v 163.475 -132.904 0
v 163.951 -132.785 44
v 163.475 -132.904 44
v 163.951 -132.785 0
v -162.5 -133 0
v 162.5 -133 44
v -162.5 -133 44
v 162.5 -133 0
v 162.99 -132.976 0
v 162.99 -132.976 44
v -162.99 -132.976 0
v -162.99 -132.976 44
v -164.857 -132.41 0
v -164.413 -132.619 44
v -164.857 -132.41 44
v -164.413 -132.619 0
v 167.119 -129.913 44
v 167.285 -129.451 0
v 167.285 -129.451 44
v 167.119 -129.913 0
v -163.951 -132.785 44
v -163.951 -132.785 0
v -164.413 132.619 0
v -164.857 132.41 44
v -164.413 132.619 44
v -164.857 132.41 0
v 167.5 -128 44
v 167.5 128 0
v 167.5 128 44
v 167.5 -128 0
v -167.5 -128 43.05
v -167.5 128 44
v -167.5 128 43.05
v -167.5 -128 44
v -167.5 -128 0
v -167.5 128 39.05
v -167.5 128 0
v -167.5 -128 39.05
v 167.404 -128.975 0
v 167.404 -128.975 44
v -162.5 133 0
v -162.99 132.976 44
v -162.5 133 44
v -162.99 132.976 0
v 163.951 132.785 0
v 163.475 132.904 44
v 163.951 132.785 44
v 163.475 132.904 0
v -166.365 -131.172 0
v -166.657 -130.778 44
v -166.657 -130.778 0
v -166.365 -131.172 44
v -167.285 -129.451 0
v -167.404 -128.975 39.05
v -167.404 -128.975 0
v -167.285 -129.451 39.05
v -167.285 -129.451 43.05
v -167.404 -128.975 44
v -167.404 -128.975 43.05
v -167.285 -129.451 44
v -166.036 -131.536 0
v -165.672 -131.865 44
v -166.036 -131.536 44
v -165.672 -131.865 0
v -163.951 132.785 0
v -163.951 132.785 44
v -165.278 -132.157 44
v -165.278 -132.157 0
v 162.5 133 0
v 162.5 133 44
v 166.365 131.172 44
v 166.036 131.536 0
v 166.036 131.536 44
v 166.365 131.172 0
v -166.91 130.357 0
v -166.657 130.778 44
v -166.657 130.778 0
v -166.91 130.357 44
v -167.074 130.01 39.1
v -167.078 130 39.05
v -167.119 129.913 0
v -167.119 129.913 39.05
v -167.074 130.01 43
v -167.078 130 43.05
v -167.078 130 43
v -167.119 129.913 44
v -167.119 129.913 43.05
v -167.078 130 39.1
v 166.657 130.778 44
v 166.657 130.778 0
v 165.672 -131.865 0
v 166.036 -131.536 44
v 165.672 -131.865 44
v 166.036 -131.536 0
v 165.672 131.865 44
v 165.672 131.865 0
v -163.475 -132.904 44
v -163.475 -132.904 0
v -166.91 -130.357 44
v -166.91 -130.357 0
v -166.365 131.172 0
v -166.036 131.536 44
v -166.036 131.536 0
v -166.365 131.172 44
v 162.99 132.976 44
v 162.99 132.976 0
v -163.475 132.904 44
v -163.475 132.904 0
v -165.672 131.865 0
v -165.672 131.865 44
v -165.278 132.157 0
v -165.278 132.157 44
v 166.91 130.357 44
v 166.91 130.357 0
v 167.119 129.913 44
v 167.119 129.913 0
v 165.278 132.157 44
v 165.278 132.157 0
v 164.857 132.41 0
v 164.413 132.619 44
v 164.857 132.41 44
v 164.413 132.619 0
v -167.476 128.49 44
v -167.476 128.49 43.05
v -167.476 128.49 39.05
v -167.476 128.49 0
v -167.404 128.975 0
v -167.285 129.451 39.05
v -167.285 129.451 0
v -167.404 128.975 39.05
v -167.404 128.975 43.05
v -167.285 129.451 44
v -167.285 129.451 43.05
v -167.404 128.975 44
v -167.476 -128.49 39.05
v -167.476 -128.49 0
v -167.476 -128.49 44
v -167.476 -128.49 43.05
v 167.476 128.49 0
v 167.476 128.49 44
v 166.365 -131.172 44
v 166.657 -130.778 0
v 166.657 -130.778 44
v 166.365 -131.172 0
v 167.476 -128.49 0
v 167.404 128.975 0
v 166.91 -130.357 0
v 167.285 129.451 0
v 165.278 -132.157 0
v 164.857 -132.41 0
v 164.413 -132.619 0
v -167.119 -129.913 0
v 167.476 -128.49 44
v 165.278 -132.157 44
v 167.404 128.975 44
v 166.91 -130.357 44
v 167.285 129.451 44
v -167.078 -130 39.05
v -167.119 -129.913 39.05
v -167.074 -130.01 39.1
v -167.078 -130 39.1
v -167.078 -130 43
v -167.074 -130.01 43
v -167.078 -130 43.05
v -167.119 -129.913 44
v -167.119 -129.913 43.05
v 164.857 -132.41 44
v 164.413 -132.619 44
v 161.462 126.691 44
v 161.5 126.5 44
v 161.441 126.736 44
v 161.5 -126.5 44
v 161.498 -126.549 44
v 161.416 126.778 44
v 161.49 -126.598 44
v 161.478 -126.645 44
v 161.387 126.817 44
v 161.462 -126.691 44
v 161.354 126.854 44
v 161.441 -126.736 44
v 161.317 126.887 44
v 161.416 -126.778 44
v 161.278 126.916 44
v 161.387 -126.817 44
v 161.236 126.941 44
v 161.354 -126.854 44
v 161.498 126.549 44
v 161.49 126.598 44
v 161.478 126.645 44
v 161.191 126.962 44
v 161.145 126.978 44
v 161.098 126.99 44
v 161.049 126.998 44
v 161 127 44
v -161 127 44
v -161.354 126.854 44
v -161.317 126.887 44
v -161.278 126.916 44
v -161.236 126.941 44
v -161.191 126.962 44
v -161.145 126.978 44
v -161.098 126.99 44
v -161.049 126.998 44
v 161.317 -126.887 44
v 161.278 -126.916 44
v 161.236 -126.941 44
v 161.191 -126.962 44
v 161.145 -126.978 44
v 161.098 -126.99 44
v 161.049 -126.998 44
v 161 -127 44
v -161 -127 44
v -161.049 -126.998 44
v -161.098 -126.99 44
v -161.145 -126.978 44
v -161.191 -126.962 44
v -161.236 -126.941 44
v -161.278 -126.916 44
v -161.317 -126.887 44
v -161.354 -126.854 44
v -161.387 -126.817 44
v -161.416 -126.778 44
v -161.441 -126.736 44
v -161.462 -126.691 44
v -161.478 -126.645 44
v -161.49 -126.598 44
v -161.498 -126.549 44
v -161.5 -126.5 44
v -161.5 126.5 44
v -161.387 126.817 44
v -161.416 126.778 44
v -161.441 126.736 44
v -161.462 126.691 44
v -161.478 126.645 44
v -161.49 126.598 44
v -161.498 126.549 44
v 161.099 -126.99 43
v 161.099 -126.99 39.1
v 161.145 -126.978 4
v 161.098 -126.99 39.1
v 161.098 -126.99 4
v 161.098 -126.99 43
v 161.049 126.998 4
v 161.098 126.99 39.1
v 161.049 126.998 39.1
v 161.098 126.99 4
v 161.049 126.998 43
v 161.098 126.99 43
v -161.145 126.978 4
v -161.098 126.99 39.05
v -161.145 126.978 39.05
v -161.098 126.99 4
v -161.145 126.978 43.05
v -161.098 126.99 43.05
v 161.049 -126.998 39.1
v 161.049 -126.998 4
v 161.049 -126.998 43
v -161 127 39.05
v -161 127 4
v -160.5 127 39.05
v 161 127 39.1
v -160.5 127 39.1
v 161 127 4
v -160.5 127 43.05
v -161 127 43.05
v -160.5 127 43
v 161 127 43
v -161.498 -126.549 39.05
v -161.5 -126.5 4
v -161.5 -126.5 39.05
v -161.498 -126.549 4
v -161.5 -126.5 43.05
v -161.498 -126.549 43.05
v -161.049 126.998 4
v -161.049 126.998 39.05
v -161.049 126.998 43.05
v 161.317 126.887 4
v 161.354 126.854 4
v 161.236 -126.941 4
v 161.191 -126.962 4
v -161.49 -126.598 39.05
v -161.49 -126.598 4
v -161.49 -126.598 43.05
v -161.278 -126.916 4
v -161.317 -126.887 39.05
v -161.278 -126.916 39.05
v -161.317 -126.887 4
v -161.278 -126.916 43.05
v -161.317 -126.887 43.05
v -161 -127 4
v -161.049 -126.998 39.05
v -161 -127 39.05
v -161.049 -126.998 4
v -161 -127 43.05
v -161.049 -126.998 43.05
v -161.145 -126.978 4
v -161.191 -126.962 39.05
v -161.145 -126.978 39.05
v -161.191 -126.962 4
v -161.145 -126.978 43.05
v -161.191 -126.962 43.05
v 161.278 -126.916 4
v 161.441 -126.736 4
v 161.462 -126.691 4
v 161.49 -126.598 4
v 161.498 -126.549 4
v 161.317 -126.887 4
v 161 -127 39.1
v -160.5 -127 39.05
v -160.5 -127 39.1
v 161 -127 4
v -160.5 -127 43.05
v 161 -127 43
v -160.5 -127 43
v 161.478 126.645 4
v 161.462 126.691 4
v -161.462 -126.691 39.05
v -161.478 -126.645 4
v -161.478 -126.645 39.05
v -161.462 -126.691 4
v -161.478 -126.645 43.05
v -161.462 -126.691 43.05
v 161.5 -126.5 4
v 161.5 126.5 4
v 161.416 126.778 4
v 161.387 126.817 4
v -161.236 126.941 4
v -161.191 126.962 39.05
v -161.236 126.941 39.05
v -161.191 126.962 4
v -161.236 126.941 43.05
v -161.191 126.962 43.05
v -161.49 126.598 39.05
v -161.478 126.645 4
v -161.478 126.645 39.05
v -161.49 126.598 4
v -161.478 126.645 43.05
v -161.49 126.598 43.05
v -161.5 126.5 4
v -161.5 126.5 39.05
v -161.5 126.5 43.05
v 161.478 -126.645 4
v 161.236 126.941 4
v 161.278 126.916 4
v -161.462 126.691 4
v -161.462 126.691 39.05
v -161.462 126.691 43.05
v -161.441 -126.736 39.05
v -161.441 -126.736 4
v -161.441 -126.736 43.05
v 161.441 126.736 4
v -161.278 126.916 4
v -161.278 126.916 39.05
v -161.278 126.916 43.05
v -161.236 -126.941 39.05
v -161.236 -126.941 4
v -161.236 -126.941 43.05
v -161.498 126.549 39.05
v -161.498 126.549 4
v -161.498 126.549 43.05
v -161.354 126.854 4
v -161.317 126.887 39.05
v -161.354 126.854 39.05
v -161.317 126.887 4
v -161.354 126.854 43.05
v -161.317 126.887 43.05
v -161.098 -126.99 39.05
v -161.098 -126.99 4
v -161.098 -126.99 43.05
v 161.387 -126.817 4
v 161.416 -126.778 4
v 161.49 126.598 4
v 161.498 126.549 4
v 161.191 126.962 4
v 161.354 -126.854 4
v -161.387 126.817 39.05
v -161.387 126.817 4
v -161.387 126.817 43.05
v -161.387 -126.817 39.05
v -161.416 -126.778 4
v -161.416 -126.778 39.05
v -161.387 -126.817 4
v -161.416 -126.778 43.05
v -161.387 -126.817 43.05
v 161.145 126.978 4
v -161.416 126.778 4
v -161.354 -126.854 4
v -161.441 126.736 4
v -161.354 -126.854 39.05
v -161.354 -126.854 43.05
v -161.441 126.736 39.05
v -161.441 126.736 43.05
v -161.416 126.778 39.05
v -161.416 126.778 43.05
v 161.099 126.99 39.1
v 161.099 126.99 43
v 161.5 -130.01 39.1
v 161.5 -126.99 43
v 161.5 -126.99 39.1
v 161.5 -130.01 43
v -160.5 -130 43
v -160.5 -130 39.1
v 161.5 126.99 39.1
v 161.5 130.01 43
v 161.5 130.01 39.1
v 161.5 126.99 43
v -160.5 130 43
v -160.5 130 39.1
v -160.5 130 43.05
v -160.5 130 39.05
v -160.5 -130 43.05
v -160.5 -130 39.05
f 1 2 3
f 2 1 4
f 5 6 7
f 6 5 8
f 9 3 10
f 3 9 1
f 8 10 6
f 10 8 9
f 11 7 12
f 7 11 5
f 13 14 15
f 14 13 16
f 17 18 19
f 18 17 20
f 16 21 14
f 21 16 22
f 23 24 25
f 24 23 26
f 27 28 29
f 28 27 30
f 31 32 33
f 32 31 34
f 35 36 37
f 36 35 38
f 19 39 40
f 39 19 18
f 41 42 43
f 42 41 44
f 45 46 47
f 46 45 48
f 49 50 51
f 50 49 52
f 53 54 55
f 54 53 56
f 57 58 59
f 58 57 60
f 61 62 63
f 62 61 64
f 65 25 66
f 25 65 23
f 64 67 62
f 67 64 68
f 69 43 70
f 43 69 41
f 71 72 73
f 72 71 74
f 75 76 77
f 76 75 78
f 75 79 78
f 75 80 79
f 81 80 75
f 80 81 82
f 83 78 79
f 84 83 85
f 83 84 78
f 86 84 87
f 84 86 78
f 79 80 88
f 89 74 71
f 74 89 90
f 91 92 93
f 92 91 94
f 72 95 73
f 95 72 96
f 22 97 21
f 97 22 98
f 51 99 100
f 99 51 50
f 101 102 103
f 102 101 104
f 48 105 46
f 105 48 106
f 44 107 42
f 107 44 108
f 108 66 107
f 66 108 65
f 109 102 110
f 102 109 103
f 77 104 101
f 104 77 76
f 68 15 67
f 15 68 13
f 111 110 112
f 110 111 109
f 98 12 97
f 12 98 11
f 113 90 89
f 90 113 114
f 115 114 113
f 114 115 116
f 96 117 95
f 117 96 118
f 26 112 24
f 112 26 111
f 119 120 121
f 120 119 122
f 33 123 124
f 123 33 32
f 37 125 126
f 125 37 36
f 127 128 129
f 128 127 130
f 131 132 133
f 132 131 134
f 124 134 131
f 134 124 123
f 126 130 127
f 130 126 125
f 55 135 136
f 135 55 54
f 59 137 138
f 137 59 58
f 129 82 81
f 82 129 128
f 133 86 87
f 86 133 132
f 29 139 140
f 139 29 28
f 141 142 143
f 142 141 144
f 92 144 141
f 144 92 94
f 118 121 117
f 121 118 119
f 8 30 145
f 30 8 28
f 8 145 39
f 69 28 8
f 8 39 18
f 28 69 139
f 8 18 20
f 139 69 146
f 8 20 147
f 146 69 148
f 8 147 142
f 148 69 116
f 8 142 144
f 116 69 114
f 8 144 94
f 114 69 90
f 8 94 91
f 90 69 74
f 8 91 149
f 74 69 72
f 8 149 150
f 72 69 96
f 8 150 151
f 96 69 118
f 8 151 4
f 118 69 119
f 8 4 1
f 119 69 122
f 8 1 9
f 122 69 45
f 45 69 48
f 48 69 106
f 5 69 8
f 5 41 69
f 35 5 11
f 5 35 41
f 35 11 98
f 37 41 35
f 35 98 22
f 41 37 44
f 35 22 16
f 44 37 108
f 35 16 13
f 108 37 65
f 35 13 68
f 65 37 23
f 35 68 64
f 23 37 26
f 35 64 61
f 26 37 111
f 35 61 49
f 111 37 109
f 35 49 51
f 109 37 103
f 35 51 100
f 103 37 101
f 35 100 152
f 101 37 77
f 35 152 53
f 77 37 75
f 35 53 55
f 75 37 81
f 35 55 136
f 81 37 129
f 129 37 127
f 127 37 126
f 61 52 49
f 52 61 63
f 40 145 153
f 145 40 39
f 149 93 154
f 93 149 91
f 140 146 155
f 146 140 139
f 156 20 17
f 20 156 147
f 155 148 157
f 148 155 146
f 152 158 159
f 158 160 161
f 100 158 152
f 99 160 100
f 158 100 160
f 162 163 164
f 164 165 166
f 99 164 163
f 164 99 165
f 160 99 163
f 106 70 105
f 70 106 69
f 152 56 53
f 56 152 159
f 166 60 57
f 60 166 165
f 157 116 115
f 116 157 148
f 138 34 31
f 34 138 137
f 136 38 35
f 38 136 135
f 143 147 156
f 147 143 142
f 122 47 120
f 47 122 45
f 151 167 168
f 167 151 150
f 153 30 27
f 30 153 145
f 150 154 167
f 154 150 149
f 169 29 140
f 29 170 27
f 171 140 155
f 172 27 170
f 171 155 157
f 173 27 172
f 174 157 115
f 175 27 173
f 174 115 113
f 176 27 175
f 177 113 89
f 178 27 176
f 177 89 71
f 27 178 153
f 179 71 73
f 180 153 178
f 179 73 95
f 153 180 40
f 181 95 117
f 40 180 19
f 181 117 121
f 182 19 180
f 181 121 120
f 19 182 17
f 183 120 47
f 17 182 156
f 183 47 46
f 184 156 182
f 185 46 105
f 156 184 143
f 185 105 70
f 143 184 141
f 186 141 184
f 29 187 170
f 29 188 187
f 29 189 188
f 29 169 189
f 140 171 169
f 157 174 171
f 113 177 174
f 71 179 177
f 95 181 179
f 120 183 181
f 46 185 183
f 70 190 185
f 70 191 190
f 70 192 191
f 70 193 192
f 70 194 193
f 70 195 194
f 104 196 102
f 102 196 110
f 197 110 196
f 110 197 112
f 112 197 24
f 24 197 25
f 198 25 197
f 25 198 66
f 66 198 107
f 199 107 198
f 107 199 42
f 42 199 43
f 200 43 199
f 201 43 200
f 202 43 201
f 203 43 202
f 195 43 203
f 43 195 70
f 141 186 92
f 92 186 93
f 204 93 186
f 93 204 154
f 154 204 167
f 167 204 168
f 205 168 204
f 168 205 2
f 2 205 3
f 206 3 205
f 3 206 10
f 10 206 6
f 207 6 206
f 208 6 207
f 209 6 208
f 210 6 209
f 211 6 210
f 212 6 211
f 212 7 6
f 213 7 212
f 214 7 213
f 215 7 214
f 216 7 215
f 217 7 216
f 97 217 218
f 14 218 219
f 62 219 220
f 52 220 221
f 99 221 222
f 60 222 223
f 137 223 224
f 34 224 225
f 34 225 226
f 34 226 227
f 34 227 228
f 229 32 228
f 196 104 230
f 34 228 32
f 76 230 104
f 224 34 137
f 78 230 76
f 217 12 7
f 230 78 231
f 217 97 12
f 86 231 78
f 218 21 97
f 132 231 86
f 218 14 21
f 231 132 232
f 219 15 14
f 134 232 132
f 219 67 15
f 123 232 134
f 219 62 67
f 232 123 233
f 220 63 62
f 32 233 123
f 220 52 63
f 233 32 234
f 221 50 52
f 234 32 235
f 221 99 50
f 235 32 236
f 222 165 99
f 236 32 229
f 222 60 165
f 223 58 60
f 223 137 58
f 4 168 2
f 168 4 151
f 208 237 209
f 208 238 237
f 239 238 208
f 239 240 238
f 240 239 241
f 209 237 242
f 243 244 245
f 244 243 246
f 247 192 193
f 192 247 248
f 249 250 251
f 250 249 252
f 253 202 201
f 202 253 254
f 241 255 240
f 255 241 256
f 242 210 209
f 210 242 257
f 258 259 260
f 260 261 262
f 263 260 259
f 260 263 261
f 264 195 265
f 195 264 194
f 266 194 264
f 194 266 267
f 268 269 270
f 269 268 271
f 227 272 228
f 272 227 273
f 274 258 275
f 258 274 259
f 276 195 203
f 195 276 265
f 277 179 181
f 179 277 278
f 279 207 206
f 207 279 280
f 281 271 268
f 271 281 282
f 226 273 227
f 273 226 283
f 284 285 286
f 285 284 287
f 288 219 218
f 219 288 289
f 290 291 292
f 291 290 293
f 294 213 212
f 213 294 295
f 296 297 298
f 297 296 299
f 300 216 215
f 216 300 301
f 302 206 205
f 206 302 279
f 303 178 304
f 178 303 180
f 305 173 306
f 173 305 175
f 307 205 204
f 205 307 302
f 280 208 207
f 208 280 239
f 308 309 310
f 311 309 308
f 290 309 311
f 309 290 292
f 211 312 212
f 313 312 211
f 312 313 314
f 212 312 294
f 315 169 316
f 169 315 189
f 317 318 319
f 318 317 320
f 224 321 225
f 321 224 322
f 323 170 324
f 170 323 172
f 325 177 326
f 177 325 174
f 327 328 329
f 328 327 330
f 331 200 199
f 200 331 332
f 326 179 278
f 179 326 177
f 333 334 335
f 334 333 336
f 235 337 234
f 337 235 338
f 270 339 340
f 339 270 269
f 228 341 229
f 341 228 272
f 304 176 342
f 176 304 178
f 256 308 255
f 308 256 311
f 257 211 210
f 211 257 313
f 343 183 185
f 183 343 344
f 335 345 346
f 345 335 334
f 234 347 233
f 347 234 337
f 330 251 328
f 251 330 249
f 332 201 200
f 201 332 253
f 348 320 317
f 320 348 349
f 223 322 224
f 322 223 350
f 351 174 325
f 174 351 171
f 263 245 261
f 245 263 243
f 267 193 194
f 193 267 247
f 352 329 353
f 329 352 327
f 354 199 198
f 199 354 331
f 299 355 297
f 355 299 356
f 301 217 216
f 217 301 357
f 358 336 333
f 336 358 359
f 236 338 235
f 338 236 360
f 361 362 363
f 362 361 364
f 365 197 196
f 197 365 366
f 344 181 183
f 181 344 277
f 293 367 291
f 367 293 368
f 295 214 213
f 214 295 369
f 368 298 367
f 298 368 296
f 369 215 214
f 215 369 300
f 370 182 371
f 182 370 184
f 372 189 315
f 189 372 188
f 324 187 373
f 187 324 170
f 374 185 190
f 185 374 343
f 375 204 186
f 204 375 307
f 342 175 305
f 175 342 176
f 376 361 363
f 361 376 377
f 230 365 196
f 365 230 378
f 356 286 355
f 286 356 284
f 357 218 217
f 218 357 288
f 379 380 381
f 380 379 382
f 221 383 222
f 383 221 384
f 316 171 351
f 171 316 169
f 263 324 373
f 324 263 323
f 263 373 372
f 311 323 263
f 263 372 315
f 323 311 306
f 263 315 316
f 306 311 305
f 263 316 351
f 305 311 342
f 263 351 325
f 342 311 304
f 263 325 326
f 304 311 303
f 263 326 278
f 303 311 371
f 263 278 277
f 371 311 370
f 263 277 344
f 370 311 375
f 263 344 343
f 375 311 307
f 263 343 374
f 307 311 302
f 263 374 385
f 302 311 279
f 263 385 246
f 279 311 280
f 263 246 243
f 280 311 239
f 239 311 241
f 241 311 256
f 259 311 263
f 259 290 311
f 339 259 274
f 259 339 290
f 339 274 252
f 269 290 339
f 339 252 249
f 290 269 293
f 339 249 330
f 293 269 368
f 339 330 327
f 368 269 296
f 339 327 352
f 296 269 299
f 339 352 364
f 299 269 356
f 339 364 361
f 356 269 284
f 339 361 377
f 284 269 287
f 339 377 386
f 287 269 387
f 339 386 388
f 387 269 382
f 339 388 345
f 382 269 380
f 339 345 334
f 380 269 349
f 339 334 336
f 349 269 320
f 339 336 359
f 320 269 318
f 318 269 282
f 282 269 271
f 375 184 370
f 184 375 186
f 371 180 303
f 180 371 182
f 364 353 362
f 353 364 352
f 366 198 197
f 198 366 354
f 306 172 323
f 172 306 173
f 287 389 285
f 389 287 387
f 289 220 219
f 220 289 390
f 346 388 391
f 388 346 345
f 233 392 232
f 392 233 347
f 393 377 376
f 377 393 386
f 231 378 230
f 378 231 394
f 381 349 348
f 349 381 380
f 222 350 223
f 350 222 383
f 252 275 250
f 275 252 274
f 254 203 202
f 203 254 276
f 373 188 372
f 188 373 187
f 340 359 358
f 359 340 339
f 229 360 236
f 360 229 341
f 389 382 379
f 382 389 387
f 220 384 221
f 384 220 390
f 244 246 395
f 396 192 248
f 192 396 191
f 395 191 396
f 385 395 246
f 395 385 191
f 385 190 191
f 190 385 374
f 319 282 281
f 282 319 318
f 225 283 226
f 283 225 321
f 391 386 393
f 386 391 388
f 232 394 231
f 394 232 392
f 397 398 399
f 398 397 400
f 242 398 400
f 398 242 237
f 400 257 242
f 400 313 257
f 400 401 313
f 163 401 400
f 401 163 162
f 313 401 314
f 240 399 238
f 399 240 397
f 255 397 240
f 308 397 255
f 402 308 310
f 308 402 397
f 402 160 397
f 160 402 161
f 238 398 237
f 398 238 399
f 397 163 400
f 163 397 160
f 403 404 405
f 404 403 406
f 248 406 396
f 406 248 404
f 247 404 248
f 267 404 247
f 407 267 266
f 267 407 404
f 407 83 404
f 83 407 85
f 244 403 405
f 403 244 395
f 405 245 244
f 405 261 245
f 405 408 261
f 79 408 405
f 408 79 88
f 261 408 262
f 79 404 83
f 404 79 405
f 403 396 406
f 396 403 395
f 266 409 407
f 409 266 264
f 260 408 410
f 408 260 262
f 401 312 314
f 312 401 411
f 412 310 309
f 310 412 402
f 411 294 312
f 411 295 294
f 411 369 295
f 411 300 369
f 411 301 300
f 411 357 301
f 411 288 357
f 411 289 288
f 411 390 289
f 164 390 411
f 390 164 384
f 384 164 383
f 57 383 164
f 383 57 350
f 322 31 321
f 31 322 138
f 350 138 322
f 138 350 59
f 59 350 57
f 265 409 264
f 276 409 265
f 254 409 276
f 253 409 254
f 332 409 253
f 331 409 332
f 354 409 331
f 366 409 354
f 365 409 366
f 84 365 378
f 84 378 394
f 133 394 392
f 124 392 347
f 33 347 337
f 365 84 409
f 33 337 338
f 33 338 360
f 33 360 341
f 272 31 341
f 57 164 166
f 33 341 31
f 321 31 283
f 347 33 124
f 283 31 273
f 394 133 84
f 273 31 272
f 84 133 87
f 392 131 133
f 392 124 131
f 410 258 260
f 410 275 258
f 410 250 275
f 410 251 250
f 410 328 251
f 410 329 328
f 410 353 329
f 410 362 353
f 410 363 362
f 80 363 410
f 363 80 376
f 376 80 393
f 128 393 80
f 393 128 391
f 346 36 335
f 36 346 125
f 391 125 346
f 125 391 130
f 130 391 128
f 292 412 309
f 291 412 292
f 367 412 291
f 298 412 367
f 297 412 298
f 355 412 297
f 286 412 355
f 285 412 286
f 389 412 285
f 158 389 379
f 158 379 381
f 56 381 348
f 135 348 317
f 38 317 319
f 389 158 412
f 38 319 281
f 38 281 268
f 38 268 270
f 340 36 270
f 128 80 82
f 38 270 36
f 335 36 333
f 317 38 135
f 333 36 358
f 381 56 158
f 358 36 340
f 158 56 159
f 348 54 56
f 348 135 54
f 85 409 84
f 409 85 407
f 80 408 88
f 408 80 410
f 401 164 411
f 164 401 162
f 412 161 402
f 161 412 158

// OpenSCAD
// ============================================================
// STORAGE BOX - BASE
// Sliding lid grooves cut INTO the side walls
// Units: mm
// ============================================================

$fn = 64;

// ============================================================
// MAIN EXTERNAL DIMENSIONS
// ============================================================

box_length = 335;       // X
box_width  = 266;       // Y
box_height = 44;        // Z

// ============================================================
// STRUCTURE
// ============================================================

wall_thickness = 6.0;
base_thickness = 4.0;
corner_radius  = 5.0;

// ============================================================
// SLIDING LID / GROOVE PARAMETERS
// ============================================================

lid_thickness          = 3.5;
lid_side_clearance     = 0.30;   // clearance at each groove depth
lid_vertical_clearance = 0.40;   // total vertical clearance
lid_end_clearance      = 0.30;   // clearance at rear stop
entry_clearance        = 0.30;   // clearance around front entry opening

groove_depth        = 3.0;       // cut into each 6 mm side wall
upper_lip_thickness = 1.0;       // EXACT upper retaining lip thickness

// ============================================================
// DERIVED DIMENSIONS
// ============================================================

internal_width = box_width - 2 * wall_thickness;

groove_height = lid_thickness + lid_vertical_clearance;
groove_top    = box_height - upper_lip_thickness;
groove_bottom = groove_top - groove_height;

lid_width =
    internal_width
    + 2 * (groove_depth - lid_side_clearance);

lid_length =
    box_length
    - wall_thickness
    - lid_end_clearance;

entry_slot_width = lid_width + 2 * entry_clearance;
entry_slot_height = groove_height + 0.10;

// ============================================================
// HELPERS
// ============================================================

module rounded_rectangle_2d(length, width, radius)
{
    r = min(radius, min(length, width) / 2);

    offset(r = r)
        square([
            length - 2 * r,
            width  - 2 * r
        ], center = true);
}

module rounded_box(length, width, height, radius)
{
    linear_extrude(height = height)
        rounded_rectangle_2d(length, width, radius);
}

// ============================================================
// SIDE GROOVE
// ============================================================

module side_groove(side)
{
    groove_center_y =
        side * (
            box_width / 2
            - wall_thickness
            + groove_depth / 2
        );

    // Opens through the front and ends at the inner face
    // of the rear wall, which becomes the lid stop.
    groove_front_x = -box_length / 2 - 1;
    groove_rear_x  =  box_length / 2 - wall_thickness;

    groove_length   = groove_rear_x - groove_front_x;
    groove_center_x = (groove_front_x + groove_rear_x) / 2;

    translate([
        groove_center_x,
        groove_center_y,
        groove_bottom + groove_height / 2
    ])
        cube([
            groove_length,
            groove_depth + 0.02,
            groove_height
        ], center = true);
}

// ============================================================
// FRONT ENTRY SLOT
// ============================================================

module front_entry_slot()
{
    translate([
        -box_length / 2 - 1,
        -entry_slot_width / 2,
        groove_bottom - 0.05
    ])
        cube([
            wall_thickness + 2,
            entry_slot_width,
            entry_slot_height
        ], center = false);
}

// ============================================================
// BASE
// ============================================================

module storage_box_base()
{
    difference()
    {
        // Outer shell
        rounded_box(
            box_length,
            box_width,
            box_height,
            corner_radius
        );

        // Main storage cavity
        translate([0, 0, base_thickness])
            linear_extrude(
                height = box_height - base_thickness + 1
            )
                rounded_rectangle_2d(
                    box_length - 2 * wall_thickness,
                    box_width  - 2 * wall_thickness,
                    max(0.5, corner_radius - wall_thickness)
                );

        // Sliding grooves cut into side walls
        side_groove(-1);
        side_groove(1);

        // Lid insertion opening through front wall
        front_entry_slot();
    }
}

// ============================================================
// OUTPUT
// ============================================================

storage_box_base();
